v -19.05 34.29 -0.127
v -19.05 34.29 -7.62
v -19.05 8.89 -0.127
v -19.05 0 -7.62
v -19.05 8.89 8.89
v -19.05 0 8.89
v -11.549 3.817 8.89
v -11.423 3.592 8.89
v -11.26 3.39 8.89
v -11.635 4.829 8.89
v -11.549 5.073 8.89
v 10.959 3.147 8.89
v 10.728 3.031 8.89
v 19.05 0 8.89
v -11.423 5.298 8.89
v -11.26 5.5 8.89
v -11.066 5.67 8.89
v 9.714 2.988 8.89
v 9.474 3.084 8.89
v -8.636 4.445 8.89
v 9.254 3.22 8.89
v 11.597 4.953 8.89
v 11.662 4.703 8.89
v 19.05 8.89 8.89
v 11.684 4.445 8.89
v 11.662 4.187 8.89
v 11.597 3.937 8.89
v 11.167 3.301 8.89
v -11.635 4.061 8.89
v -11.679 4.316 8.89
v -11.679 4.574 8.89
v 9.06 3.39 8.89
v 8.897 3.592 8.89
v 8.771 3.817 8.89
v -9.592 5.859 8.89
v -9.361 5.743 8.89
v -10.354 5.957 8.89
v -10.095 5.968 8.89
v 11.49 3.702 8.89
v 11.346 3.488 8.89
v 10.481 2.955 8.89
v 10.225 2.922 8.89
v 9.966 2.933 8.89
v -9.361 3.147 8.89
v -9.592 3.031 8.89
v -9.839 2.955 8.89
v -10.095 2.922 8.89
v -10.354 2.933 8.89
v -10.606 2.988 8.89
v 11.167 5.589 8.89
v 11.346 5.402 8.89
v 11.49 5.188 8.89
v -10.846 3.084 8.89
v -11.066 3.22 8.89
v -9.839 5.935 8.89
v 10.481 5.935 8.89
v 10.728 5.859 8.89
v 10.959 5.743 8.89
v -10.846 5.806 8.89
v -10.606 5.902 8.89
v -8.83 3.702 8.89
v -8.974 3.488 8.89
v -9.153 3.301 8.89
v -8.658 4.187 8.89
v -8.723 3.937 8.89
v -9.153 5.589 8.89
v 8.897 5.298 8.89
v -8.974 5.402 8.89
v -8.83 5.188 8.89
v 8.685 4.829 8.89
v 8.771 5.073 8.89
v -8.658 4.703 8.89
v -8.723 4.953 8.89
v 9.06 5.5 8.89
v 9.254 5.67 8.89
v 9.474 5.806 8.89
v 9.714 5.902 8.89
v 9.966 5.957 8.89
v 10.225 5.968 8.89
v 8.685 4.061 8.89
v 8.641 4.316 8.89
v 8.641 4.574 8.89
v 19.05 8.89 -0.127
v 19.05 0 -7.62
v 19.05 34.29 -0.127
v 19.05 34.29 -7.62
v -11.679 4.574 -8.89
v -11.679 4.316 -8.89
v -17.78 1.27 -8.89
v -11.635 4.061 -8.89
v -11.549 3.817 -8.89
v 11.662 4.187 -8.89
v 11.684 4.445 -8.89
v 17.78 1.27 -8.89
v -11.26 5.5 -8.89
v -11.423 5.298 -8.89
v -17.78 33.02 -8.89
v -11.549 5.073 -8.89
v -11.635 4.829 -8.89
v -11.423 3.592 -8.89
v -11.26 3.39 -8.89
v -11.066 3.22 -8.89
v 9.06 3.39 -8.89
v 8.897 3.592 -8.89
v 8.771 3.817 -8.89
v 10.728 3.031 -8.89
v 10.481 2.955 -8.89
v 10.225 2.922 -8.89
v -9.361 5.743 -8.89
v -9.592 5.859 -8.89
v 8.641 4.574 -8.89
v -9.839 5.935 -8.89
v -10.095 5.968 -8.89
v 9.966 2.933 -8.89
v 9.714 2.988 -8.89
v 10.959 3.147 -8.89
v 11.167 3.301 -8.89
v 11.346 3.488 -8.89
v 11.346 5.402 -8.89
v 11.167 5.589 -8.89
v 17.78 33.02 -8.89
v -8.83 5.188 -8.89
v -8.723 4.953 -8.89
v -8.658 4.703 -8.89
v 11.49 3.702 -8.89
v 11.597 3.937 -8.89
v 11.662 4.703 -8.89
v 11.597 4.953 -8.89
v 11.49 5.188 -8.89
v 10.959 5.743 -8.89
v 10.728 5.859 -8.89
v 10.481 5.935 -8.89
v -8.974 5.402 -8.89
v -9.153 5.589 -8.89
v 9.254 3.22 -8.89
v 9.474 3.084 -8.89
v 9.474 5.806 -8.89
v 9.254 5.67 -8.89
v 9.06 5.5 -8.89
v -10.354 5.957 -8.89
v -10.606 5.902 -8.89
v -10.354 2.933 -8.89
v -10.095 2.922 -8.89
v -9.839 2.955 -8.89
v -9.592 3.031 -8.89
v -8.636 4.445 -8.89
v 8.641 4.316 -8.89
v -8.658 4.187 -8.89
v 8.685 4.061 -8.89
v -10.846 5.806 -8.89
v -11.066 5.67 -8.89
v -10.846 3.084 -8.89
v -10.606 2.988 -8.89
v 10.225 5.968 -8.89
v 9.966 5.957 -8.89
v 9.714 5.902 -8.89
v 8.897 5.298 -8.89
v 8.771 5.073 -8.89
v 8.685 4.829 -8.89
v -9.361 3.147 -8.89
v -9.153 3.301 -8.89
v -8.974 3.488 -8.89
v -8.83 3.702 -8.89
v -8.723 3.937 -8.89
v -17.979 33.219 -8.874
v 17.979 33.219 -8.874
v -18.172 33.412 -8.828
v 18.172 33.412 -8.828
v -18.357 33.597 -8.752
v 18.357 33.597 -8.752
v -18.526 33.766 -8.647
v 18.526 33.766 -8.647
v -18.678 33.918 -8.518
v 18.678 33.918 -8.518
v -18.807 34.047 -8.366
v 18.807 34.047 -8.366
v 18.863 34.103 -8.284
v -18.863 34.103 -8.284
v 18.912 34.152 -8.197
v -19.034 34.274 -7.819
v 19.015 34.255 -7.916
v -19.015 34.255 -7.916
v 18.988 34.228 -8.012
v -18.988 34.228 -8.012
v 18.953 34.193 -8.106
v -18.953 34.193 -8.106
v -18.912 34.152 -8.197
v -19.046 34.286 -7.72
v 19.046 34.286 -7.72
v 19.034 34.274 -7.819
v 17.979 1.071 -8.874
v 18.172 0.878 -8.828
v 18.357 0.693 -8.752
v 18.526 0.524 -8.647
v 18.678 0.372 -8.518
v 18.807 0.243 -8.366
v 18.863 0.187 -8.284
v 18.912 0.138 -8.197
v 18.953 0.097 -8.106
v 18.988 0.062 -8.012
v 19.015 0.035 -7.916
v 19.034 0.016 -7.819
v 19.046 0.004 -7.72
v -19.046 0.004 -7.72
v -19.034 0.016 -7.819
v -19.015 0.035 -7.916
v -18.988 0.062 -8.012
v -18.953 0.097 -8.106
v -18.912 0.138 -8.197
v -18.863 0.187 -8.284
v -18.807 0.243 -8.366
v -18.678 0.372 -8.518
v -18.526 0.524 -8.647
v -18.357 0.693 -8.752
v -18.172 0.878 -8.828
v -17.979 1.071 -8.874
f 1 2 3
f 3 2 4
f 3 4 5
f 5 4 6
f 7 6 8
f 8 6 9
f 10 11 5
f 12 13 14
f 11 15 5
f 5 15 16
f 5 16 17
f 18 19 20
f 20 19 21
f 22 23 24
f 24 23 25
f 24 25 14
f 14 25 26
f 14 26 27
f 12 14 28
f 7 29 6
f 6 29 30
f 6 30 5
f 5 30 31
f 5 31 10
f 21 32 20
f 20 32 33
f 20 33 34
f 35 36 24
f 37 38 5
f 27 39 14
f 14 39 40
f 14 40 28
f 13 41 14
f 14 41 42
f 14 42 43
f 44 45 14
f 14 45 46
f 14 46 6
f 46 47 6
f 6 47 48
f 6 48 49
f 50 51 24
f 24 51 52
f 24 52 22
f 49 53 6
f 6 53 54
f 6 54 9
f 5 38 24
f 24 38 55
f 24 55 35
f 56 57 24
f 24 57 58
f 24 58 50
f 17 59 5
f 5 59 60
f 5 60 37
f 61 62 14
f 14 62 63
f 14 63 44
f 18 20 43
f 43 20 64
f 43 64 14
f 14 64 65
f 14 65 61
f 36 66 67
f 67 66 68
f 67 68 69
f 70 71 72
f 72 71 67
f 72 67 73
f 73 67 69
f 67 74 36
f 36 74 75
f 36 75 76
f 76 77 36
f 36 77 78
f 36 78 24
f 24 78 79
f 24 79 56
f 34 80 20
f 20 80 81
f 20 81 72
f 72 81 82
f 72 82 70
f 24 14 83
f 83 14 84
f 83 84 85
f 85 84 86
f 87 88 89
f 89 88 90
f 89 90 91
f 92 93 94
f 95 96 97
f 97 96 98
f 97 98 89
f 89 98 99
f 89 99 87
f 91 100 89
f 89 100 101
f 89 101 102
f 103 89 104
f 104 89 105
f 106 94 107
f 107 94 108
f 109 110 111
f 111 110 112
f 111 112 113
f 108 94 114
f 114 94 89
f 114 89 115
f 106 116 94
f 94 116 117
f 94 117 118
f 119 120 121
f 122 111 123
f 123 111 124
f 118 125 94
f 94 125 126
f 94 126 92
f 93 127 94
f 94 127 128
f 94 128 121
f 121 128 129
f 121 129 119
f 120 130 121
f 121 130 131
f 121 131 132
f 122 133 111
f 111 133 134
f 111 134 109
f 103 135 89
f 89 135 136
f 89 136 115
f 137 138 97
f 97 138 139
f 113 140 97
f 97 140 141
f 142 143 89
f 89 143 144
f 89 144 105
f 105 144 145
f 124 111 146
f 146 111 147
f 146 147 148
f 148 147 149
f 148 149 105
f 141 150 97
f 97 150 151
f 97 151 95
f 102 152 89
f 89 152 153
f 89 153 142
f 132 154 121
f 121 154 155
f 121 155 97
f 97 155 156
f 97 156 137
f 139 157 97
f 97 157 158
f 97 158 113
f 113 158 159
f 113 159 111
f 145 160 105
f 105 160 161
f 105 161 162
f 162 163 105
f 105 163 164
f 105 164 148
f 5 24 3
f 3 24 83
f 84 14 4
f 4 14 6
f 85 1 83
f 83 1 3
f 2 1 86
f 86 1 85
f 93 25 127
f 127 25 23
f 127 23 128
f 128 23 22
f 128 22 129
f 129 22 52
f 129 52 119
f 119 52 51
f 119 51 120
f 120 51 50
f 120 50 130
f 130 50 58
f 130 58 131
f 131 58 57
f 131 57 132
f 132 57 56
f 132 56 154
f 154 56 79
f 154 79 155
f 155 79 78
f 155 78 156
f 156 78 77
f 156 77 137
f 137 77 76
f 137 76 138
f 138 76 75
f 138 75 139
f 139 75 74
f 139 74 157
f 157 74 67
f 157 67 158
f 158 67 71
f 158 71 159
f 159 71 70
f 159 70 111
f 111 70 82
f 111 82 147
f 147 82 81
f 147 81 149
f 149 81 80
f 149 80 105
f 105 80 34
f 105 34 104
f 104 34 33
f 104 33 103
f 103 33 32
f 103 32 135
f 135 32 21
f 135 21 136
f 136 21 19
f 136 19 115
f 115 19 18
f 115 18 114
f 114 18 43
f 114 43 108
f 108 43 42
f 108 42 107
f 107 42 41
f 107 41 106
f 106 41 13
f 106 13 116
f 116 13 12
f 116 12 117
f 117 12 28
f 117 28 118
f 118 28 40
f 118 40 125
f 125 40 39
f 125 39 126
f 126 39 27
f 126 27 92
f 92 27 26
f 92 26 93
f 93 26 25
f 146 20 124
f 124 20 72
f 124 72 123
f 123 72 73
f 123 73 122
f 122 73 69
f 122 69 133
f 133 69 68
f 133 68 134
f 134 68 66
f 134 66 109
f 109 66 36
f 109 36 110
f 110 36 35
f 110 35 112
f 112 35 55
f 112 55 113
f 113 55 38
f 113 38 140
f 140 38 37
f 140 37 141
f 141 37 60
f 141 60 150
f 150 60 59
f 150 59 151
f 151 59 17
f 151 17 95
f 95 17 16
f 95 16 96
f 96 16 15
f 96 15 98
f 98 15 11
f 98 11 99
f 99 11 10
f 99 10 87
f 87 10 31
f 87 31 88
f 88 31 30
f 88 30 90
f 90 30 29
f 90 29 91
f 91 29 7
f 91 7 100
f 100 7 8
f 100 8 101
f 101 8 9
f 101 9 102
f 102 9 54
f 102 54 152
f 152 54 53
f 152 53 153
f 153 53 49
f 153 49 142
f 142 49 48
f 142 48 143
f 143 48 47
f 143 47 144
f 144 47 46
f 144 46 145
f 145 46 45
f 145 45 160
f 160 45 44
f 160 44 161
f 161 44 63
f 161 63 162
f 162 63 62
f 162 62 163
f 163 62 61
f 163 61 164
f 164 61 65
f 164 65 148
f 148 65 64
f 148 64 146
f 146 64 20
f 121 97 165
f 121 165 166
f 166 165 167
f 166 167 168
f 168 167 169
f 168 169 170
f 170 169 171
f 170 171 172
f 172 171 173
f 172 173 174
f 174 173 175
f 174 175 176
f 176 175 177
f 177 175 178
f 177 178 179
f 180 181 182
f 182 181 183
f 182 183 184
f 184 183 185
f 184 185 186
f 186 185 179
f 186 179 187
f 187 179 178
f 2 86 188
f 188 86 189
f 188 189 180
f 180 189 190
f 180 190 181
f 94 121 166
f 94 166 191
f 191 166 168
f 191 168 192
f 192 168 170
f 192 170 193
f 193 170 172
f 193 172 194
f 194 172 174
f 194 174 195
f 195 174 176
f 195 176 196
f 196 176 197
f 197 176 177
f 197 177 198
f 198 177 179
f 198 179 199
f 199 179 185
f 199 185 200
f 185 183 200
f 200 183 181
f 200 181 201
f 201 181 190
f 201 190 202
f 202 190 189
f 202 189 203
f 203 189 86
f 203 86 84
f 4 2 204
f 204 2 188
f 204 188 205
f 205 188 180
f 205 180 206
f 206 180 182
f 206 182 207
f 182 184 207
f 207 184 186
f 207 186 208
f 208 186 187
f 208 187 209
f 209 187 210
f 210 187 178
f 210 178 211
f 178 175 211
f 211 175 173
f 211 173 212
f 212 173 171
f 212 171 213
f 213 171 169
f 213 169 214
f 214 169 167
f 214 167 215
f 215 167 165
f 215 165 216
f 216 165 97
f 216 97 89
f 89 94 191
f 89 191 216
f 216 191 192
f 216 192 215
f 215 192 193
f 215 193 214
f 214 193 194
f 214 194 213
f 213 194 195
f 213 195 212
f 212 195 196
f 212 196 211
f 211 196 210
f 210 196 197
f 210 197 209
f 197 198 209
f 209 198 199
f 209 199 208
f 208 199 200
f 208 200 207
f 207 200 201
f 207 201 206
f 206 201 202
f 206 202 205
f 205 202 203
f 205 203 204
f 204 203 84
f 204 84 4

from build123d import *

# Parameters (mm, degrees)
SKETCH2_W           = 38.1
SKETCH2_H           = 17.78
BOSS_EXTRUDE1_DEPTH = 8.89
SKETCH3_W           = 38.1
SKETCH3_H           = 8.763
BOSS_EXTRUDE2_DEPTH = 25.4
SKETCH4_R           = 1.524
CUT_EXTRUDE1_DEPTH  = 44.067795393
FILLET1_R           = 1.27


with BuildPart() as part:
    # Sketch2 → Boss-Extrude1 (new body)
    with BuildSketch(Plane(origin=(0, 0, 0), x_dir=(1, 0, 0), z_dir=(0, 1, 0))):
        Rectangle(SKETCH2_W, SKETCH2_H)
    extrude(amount=BOSS_EXTRUDE1_DEPTH)

    # Sketch3 → Boss-Extrude2 (add)
    with BuildSketch(Plane(origin=(0, 8.89, 0), x_dir=(1, 0, 0), z_dir=(0, 1, 0))):
        with Locations((0, 4.5085)):
            Rectangle(SKETCH3_W, SKETCH3_H)
    extrude(amount=BOSS_EXTRUDE2_DEPTH)

    # Sketch4 → Cut-Extrude1 (cut, through all)
    with BuildSketch(Plane.XY.offset(8.89)):
        with Locations((-10.16, 4.445)):
            Circle(SKETCH4_R)
        with Locations((10.16, 4.445)):
            Circle(SKETCH4_R)
    extrude(amount=-CUT_EXTRUDE1_DEPTH, mode=Mode.SUBTRACT)

    # Fillet1
    fillet1_edges = [part.edges().sort_by_distance(p)[0] for p in [
        (0, 34.29, -8.89),
        (0, 0, -8.89),
        (-19.05, 17.145, -8.89),
        (19.05, 17.145, -8.89),
    ]]
    fillet(fillet1_edges, radius=FILLET1_R)


solid = part.part
